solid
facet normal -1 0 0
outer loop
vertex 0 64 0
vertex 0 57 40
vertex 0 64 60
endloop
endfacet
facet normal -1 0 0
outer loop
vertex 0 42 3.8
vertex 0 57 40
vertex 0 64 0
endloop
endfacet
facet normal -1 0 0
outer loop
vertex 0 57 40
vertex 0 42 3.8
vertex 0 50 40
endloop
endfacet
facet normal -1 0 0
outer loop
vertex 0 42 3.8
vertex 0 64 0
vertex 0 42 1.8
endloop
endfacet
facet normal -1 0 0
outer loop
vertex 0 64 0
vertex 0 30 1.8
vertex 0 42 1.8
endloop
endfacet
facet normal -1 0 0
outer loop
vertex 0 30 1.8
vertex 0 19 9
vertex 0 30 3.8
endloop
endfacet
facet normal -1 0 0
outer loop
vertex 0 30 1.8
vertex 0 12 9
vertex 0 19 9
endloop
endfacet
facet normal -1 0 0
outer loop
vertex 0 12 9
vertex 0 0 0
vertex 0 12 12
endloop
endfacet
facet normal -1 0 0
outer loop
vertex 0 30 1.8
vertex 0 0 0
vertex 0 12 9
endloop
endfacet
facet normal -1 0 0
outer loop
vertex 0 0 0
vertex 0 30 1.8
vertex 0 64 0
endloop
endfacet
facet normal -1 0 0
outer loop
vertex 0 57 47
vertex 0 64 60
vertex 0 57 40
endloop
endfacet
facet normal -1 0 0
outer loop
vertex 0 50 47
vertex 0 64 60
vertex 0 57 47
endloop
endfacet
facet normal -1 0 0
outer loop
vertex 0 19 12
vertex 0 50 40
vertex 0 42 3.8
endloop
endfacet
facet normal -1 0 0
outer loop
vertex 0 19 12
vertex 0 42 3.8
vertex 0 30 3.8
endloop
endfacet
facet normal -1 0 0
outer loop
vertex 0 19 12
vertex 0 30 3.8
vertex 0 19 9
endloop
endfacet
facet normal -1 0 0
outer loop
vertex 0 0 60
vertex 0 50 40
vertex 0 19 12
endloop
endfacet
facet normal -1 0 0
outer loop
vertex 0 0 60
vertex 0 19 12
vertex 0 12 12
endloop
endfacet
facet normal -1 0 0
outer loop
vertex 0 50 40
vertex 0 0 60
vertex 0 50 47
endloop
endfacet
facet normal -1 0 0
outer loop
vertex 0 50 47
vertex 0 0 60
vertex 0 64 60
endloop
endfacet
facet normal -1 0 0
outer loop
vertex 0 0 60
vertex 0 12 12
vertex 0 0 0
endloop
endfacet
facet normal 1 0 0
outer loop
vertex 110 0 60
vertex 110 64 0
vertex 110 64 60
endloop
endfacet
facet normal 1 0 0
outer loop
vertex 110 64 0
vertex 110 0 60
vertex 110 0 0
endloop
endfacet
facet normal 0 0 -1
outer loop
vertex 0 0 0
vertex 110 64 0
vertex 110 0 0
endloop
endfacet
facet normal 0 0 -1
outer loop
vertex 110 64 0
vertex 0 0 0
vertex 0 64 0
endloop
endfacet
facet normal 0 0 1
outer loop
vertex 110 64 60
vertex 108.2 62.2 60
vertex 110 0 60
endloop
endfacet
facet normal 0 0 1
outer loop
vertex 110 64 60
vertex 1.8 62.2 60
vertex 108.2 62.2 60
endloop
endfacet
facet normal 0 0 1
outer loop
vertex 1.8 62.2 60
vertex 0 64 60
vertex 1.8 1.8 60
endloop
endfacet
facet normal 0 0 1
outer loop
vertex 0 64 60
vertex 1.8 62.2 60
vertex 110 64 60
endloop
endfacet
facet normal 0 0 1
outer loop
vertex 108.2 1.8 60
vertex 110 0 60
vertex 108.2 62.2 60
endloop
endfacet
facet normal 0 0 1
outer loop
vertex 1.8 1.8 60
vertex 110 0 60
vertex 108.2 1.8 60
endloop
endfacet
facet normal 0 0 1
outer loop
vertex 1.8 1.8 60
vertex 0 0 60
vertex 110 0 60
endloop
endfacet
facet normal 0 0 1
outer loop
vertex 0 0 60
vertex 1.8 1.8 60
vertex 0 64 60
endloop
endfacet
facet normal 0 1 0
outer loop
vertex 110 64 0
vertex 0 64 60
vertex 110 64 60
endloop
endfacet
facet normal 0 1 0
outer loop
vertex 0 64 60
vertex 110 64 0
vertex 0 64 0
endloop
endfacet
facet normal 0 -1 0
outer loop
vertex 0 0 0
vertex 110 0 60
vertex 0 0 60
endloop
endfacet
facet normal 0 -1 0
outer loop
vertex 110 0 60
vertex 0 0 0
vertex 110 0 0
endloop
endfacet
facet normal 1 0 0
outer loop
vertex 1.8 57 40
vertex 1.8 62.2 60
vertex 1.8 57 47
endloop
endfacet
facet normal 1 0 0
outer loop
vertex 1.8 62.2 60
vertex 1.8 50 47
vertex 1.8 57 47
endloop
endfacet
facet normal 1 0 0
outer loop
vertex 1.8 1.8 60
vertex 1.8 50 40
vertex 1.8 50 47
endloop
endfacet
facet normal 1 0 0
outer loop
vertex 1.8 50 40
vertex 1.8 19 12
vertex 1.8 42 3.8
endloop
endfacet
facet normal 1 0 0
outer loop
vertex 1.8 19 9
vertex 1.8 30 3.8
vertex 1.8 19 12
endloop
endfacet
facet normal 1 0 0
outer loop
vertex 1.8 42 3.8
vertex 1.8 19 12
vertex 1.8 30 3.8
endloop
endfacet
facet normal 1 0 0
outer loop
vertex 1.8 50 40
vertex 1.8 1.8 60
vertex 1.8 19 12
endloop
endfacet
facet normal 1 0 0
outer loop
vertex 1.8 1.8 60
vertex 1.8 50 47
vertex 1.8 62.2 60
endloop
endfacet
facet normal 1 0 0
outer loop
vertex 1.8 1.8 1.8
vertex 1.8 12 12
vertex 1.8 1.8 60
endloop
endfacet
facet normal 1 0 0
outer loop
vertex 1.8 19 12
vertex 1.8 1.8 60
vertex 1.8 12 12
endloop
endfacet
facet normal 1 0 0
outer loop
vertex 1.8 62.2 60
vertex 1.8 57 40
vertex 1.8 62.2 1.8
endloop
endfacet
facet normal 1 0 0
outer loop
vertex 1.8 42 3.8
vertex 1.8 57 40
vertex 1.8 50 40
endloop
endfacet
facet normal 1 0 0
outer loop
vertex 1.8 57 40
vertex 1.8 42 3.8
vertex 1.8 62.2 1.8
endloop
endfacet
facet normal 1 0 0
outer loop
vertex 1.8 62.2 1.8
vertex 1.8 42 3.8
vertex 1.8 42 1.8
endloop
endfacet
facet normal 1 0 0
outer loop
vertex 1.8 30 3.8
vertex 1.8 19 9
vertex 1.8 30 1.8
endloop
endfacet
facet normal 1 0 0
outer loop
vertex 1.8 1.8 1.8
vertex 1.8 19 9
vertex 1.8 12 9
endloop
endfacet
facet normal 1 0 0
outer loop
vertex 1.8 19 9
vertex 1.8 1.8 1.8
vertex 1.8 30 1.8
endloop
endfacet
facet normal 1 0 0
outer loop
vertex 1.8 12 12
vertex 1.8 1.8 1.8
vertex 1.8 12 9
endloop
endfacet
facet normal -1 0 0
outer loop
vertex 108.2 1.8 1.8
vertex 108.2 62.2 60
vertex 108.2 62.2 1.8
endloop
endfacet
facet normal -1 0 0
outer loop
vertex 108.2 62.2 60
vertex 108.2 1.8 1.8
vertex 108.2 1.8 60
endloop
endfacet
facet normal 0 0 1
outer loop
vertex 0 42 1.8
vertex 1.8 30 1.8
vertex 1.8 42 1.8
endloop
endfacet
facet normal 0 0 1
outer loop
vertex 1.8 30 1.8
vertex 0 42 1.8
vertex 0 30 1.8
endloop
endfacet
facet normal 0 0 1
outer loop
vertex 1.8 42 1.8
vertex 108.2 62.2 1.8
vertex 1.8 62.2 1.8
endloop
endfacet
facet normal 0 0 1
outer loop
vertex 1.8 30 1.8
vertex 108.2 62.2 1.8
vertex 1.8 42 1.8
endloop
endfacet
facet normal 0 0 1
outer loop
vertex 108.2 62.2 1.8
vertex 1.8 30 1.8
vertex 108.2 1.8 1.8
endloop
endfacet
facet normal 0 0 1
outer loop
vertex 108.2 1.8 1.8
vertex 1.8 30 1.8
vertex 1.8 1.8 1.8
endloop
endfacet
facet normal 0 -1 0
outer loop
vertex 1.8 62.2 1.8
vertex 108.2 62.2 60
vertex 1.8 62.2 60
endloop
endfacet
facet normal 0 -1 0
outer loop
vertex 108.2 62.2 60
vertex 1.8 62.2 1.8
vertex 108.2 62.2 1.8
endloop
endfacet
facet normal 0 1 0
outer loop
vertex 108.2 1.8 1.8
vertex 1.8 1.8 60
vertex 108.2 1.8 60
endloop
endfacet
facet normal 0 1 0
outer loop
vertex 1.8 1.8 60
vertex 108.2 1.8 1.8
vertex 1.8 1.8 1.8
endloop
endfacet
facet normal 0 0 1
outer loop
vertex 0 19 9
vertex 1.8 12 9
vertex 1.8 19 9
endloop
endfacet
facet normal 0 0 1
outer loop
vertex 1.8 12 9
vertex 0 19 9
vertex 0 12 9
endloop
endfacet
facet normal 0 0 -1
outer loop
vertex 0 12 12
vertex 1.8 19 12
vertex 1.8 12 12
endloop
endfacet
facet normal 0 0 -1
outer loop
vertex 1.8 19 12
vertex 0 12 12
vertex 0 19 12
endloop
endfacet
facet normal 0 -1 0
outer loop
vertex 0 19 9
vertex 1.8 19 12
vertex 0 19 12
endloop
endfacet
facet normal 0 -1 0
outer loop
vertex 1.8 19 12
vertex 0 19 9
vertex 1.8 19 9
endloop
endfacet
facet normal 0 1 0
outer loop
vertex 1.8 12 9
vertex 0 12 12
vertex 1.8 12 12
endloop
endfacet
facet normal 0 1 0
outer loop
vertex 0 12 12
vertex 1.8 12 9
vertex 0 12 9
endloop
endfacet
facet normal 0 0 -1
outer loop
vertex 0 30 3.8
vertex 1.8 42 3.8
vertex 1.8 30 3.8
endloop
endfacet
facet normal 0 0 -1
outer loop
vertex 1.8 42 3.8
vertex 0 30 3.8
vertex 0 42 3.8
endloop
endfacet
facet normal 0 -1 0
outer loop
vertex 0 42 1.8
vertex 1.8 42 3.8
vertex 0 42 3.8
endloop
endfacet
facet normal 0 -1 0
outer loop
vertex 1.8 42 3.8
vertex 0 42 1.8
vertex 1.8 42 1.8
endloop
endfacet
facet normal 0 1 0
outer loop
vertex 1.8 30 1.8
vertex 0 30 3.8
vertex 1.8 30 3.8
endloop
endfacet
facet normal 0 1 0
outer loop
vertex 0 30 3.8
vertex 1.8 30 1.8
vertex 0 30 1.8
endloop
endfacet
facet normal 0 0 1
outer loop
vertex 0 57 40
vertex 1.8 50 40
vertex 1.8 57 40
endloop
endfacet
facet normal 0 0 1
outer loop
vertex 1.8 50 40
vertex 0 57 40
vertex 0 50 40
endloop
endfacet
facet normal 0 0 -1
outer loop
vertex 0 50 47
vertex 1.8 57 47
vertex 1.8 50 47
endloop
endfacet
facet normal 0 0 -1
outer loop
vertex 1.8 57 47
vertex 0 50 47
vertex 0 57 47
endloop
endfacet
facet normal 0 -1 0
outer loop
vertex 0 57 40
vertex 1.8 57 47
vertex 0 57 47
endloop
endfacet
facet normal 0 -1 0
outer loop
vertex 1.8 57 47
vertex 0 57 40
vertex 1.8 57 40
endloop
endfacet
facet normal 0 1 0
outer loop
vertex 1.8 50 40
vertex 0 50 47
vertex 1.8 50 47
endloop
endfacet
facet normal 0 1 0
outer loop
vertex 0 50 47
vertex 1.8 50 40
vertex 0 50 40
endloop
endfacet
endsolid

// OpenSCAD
BaseWidth = 110;
BaseDepth = 64;
BaseHeight = 60;
CornerRadius = 0;
WallThickness = 1.8;
LCDScreenWidth=3;
LCDScreenHeight=7;
LCDScreenX=9;
LCDScreenY=12;
SmokeSensorRadius = 0;
SmokeSensorX=BaseWidth-WallThickness*2-1-SmokeSensorRadius;
SmokeSensorY=BaseDepth/2;
LEDRadius=1.6;
LEDX=SmokeSensorX;
LEDY=SmokeSensorY+35;

module RoundedRectangle($Width=BaseWidth, $Depth=BaseDepth, $Radius=CornerRadius) 
{
    polygon(points = [[$Radius, 0], [$Width-$Radius, 0],[$Width, $Radius], [$Width, $Depth-$Radius], [$Width-$Radius, $Depth], [$Radius, $Depth], [0, $Depth-$Radius], [0, $Radius]], paths=[[0,1,2,3,4,5,6,7]]);
        
    translate([$Radius,$Radius,0]){
        circle(r=$Radius);
    }        
    translate([$Width-$Radius,$Radius,0]){
        circle(r=$Radius);
    }
    
    translate([$Width-$Radius,$Depth-$Radius,0]){ 
        circle(r=$Radius);
    }
    
    translate([$Radius,$Depth-$Radius,0]){ 
        circle(r=$Radius);
    }
}


module base3D($Width=BaseWidth, $Depth=BaseDepth, $Height=BaseHeight, $Radius=CornerRadius, $Thickness=WallThickness)
{
    difference()
    {
        linear_extrude(height = $Height, center = false, convexity = 0, twist = 0)
        RoundedRectangle($Width, $Depth, $Radius);
        translate([$Thickness, $Thickness, $Thickness]) {
        linear_extrude(height = $Height, center = false, convexity = 0, twist = 0)
        RoundedRectangle($Width-$Thickness*2, $Depth-$Thickness*2, $Radius);
        }
    }
}

difference() {
    base3D(BaseWidth, BaseDepth, BaseHeight, CornerRadius, WallThickness);
    
    rotate([0, -90, 0]) {
    translate([LCDScreenX, LCDScreenY, -WallThickness]) {
        cube(size=[LCDScreenWidth, LCDScreenHeight, WallThickness], center=false);
    }
    }

    rotate([0, -90, 0]) {
    translate([WallThickness, 30, -WallThickness]) {
        cube(size=[2, 12, WallThickness], center=false);
    }
    }

    rotate([0, -90, 0]) {
    translate([40, 50, -WallThickness]) {
        cube(size=[7, 7, WallThickness], center=false);
    }
    }
    
    translate([SmokeSensorX, SmokeSensorY, 0]){
        cylinder(h=WallThickness, r1=SmokeSensorRadius, r2=SmokeSensorRadius, center=false);
    }
//    translate([LEDX, LEDY, 0]){
//        cylinder(h=WallThickness, r1=LEDRadius, r2=LEDRadius, center=false);
//    }
//    translate([0, 200+28, 142+30]){
//        rotate([135, 0, 0]){
//            cube(size=[200, 200, 200], center=false);
//        }
//    }
/*    
    translate([0, 0, 33]){
        rotate([45, 0, 0]){
            cube(size=[BaseWidth, BaseDepth/1.42, 200], center=false);
        }
    }
*/
}

/*
difference() {
    translate([0, 0, 33]){
        rotate([45, 0, 0]){
            cube(size=[BaseWidth, BaseDepth/1.42, 200], center=false);
        }
    }

    translate([0, -2, 35]){
        rotate([45, 0, 0]){
            cube(size=[BaseWidth+2, BaseDepth/1.42+2, 200+2], center=false);
        }
    }
}
*/
